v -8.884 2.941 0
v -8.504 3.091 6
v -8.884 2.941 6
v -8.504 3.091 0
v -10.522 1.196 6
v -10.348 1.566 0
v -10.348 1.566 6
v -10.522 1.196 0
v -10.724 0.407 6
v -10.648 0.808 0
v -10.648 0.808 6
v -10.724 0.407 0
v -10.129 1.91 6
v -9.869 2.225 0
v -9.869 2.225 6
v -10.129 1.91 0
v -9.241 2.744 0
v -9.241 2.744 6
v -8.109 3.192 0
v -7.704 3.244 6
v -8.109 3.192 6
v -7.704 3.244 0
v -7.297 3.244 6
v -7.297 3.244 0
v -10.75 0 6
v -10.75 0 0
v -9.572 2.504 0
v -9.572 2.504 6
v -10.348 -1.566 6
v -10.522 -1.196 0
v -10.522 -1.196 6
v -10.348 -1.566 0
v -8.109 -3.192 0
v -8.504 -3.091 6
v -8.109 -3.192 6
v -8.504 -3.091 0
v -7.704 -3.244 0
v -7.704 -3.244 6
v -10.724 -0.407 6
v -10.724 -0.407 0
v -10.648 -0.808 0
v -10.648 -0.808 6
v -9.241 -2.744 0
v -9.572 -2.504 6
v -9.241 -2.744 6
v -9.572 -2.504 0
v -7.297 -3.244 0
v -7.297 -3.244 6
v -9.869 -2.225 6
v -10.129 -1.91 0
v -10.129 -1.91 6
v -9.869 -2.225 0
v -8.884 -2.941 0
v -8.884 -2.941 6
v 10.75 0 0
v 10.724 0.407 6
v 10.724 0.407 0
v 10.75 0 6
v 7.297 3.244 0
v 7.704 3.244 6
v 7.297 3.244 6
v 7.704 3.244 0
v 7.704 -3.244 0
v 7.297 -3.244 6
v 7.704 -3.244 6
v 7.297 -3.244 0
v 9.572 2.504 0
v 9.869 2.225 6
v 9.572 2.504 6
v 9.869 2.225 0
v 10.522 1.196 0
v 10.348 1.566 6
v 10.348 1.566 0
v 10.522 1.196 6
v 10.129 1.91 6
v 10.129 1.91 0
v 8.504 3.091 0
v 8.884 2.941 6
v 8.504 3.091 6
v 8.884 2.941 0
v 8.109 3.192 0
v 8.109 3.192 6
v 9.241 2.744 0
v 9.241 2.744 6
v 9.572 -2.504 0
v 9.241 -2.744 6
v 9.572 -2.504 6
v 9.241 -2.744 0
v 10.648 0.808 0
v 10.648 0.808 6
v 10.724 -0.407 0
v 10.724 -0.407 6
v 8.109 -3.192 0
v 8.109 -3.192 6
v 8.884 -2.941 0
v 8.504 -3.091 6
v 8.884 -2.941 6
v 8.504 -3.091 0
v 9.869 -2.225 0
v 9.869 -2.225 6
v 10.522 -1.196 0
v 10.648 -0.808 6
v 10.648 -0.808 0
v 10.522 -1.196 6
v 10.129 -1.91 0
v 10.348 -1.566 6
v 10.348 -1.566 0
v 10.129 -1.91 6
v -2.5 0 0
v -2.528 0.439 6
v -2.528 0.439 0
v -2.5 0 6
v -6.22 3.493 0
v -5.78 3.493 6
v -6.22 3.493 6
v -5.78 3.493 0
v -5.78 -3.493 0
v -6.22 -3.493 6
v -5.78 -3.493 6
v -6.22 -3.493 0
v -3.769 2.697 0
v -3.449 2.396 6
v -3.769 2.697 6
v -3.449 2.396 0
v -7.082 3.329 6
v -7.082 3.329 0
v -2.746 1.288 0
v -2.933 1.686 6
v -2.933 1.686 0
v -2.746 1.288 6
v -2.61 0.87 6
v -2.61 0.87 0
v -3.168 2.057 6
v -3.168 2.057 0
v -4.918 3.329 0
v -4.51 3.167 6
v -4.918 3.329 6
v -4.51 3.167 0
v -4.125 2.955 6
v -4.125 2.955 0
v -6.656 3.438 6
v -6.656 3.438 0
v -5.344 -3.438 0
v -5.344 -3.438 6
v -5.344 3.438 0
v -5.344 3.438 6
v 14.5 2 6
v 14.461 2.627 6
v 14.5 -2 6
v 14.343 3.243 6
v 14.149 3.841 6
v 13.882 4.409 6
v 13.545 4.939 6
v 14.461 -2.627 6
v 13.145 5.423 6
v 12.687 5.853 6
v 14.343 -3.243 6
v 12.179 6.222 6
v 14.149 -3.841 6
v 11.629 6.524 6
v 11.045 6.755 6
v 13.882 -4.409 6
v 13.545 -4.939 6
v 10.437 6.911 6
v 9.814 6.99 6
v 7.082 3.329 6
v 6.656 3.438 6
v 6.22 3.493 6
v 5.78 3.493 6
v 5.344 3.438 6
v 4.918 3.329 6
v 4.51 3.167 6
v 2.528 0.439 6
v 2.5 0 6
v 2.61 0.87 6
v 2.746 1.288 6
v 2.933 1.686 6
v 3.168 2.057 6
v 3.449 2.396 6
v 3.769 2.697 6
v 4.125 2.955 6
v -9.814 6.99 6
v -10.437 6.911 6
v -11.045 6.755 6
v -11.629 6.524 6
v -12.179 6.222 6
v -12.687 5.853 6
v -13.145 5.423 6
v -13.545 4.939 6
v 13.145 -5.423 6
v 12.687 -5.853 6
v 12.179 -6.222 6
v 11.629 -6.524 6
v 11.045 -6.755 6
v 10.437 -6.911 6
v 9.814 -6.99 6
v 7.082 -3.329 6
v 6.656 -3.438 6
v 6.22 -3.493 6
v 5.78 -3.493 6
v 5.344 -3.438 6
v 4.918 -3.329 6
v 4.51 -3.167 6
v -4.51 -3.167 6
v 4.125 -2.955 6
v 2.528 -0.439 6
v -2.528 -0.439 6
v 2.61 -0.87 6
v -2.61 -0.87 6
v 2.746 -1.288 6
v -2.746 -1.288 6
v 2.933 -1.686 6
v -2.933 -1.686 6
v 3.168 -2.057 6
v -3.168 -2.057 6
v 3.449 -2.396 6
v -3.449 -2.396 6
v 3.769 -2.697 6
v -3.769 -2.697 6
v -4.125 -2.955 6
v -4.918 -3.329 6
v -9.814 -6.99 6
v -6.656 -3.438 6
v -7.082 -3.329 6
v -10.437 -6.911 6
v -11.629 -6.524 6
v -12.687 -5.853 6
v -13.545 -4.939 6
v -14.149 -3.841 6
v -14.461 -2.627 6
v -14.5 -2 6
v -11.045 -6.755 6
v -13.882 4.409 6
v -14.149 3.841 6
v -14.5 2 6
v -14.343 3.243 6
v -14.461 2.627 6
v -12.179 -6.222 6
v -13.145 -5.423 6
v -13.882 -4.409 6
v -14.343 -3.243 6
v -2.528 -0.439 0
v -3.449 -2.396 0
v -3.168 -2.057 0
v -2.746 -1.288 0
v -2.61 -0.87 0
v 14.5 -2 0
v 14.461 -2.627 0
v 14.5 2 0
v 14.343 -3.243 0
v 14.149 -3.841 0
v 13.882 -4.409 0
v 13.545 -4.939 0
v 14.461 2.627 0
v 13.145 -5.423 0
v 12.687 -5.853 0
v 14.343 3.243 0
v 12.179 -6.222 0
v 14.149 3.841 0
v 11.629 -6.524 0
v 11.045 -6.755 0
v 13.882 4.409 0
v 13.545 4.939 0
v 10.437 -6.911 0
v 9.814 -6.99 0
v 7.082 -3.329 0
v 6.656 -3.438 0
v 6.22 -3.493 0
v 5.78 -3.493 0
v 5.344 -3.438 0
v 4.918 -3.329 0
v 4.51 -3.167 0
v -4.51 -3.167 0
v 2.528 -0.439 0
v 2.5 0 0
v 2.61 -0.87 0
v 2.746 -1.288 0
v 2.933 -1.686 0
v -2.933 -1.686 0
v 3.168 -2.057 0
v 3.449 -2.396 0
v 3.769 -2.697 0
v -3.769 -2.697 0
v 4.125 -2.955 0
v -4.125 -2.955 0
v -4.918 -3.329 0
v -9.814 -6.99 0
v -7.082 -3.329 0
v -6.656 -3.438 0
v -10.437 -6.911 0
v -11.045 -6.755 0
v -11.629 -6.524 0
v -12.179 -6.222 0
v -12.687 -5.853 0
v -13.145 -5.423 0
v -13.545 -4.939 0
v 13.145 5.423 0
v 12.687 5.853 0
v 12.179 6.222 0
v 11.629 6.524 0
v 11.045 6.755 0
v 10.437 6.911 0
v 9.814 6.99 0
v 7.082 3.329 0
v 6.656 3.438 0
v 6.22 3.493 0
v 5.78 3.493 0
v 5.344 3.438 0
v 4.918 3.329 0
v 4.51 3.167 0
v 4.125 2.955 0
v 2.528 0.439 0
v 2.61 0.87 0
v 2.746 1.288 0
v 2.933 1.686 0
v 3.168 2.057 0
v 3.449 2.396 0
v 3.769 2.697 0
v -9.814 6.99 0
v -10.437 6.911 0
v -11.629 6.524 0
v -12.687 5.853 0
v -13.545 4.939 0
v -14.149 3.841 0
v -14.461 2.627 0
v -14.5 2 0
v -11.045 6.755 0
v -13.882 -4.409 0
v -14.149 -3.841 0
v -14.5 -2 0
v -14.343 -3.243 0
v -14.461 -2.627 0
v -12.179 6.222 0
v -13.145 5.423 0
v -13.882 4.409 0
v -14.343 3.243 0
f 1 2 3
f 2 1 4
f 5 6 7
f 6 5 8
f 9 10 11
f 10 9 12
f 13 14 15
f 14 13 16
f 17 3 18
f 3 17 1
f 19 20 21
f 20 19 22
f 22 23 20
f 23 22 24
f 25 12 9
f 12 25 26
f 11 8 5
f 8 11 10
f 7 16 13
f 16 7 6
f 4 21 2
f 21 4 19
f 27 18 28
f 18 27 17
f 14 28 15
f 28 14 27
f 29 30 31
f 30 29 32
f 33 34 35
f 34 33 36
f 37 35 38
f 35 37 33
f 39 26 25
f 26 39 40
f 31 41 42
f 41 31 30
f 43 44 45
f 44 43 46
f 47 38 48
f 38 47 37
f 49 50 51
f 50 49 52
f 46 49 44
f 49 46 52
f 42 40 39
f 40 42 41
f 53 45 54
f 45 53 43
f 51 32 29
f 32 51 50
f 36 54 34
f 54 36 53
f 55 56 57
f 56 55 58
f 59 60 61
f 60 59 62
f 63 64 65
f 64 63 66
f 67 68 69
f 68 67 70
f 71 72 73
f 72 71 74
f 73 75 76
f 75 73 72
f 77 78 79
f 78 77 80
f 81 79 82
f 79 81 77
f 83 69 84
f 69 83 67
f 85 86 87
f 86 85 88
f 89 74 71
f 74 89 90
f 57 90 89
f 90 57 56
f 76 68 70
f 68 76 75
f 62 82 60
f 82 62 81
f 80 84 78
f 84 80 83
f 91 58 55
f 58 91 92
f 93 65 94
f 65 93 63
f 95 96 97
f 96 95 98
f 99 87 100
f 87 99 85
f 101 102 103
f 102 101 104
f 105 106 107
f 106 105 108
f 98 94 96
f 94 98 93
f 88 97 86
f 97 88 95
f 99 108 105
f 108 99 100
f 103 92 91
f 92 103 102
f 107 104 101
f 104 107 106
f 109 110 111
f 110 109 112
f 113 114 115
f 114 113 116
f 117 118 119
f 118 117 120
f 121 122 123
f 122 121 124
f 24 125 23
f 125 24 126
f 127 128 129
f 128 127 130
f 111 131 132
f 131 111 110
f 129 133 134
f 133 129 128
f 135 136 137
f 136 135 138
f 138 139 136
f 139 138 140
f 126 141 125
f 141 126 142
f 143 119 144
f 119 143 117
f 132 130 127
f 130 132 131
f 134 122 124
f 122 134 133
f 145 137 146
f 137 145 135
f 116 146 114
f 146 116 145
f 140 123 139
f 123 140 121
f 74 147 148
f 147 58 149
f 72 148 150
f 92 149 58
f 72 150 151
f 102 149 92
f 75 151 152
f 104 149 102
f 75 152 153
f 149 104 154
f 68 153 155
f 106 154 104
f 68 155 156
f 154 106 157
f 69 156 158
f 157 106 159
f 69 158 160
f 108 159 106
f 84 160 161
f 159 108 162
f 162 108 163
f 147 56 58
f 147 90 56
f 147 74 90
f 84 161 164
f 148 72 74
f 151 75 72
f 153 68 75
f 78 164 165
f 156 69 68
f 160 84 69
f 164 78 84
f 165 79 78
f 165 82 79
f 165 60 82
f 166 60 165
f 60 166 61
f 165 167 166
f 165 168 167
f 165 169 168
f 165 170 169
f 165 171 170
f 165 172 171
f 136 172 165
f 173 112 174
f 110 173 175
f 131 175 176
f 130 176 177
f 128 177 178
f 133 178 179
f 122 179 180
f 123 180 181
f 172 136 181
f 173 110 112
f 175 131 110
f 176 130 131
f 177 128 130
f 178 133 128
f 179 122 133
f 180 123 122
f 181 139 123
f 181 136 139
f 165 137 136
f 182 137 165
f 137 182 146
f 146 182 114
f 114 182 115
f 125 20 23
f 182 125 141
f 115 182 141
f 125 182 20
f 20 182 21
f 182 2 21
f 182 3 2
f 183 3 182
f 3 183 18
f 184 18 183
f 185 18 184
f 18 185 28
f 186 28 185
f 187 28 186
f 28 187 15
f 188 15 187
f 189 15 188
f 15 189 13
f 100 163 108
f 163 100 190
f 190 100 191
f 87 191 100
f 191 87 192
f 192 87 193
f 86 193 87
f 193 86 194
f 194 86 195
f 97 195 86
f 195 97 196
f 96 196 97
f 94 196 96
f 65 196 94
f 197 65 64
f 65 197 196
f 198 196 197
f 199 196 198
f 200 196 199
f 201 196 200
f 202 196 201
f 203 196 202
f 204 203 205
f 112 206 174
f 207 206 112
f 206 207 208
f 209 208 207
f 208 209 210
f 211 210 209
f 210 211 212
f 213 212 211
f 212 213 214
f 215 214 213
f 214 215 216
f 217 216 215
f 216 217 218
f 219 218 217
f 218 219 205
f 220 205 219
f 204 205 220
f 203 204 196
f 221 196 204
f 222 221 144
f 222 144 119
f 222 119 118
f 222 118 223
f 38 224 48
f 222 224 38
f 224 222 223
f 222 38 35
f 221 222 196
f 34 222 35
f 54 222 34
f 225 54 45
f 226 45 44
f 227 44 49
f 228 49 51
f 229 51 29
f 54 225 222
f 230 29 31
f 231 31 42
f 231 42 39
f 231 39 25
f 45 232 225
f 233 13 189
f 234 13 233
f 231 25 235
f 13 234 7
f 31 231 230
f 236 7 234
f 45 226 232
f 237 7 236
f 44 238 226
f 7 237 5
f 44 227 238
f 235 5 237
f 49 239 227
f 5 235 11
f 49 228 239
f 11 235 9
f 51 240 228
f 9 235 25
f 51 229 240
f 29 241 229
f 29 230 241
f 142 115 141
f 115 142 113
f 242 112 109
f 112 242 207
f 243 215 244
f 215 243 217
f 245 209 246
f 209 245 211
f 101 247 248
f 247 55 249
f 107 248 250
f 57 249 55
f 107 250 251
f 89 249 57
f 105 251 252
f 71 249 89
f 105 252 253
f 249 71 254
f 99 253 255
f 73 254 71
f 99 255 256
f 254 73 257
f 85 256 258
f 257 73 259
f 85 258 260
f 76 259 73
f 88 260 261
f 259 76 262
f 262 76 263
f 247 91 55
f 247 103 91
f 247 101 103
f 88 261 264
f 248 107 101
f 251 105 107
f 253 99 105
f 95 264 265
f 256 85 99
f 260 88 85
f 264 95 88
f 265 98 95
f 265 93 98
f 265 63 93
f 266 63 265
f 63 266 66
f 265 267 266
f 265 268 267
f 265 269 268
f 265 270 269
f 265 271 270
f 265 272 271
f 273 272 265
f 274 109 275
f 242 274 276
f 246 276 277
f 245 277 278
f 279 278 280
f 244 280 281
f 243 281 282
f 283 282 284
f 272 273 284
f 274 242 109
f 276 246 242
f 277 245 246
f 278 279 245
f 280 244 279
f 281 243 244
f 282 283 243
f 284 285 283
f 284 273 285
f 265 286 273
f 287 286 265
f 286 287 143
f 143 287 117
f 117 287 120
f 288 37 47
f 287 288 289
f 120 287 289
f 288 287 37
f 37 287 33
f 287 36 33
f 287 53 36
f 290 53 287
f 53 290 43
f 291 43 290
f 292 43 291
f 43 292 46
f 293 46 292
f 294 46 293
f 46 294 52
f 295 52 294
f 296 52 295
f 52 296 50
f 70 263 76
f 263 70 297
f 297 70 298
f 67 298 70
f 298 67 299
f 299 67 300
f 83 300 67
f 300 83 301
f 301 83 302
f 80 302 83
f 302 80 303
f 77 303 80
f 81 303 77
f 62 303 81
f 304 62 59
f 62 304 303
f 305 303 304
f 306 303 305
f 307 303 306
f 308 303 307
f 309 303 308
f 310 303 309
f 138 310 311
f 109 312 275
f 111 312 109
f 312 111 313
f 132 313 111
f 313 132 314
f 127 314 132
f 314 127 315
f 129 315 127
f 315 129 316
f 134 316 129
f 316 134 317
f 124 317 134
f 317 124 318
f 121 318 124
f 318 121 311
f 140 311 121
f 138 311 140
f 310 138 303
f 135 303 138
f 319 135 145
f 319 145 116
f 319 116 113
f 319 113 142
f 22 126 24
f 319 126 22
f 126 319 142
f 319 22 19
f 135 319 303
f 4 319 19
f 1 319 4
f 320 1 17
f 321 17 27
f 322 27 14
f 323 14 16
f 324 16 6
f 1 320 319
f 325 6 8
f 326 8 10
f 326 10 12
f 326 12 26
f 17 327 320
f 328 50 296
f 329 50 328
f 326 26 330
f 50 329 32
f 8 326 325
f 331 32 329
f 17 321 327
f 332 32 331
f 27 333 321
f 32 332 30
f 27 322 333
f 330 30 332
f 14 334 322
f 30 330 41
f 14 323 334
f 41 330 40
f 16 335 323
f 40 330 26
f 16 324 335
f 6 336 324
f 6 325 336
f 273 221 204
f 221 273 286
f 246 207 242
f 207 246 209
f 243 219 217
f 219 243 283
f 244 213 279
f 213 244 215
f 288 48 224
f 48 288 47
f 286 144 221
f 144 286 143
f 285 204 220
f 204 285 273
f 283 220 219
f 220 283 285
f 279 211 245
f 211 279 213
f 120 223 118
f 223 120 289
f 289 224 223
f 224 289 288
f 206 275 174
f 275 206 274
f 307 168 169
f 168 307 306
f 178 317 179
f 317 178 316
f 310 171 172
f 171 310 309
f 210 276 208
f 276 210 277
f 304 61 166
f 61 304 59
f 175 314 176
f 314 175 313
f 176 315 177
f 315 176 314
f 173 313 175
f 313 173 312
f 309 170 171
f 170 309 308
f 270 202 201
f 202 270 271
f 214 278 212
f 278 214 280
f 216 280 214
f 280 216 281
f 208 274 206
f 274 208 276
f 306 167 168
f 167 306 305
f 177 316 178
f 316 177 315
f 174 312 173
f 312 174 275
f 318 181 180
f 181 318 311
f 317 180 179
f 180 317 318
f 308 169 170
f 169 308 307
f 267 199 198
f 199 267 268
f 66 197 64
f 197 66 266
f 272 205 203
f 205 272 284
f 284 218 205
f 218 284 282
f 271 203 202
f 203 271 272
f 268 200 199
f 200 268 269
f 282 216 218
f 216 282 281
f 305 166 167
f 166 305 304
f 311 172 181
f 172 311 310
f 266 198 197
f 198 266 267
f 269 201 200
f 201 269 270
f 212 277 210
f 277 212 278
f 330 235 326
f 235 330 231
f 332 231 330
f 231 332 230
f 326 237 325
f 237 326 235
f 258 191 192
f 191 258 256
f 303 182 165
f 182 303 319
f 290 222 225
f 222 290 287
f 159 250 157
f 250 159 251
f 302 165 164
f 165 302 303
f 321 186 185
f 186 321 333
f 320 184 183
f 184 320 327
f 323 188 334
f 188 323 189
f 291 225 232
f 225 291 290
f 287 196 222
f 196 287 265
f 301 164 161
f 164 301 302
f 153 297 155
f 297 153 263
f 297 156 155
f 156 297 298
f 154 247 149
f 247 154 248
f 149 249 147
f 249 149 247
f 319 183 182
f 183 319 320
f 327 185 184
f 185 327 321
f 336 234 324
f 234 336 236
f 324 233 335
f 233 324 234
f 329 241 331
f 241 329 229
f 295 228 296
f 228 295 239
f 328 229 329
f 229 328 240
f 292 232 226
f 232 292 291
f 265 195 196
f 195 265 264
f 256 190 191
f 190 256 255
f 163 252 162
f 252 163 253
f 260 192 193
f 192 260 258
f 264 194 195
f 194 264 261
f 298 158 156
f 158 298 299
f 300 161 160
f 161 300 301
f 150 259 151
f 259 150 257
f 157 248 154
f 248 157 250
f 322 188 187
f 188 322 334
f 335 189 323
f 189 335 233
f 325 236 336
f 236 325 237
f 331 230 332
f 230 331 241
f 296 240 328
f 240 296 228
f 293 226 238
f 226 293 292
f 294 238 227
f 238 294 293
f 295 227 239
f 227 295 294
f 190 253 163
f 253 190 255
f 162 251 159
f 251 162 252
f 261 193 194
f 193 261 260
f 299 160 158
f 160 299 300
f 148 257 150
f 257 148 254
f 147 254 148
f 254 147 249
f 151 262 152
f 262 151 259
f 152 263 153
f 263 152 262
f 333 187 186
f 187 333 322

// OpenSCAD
$fn = 50;


difference() {
	union() {
		hull() {
			translate(v = [-9.5000000000, 2.0000000000, 0]) {
				cylinder(h = 6, r = 5);
			}
			translate(v = [9.5000000000, 2.0000000000, 0]) {
				cylinder(h = 6, r = 5);
			}
			translate(v = [-9.5000000000, -2.0000000000, 0]) {
				cylinder(h = 6, r = 5);
			}
			translate(v = [9.5000000000, -2.0000000000, 0]) {
				cylinder(h = 6, r = 5);
			}
		}
	}
	union() {
		#translate(v = [-7.5000000000, 0.0000000000, -100.0000000000]) {
			cylinder(h = 200, r = 3.2500000000);
		}
		#translate(v = [-7.5000000000, 0.0000000000, -100.0000000000]) {
			cylinder(h = 200, r = 3.2500000000);
		}
		#translate(v = [7.5000000000, 0.0000000000, -100.0000000000]) {
			cylinder(h = 200, r = 3.2500000000);
		}
		#translate(v = [7.5000000000, 0.0000000000, -100.0000000000]) {
			cylinder(h = 200, r = 3.2500000000);
		}
		#translate(v = [-6.0000000000, 0, 0]) {
			cylinder(h = 6, r = 3.5000000000);
		}
		#translate(v = [6.0000000000, 0, 0]) {
			cylinder(h = 6, r = 3.5000000000);
		}
	}
}
